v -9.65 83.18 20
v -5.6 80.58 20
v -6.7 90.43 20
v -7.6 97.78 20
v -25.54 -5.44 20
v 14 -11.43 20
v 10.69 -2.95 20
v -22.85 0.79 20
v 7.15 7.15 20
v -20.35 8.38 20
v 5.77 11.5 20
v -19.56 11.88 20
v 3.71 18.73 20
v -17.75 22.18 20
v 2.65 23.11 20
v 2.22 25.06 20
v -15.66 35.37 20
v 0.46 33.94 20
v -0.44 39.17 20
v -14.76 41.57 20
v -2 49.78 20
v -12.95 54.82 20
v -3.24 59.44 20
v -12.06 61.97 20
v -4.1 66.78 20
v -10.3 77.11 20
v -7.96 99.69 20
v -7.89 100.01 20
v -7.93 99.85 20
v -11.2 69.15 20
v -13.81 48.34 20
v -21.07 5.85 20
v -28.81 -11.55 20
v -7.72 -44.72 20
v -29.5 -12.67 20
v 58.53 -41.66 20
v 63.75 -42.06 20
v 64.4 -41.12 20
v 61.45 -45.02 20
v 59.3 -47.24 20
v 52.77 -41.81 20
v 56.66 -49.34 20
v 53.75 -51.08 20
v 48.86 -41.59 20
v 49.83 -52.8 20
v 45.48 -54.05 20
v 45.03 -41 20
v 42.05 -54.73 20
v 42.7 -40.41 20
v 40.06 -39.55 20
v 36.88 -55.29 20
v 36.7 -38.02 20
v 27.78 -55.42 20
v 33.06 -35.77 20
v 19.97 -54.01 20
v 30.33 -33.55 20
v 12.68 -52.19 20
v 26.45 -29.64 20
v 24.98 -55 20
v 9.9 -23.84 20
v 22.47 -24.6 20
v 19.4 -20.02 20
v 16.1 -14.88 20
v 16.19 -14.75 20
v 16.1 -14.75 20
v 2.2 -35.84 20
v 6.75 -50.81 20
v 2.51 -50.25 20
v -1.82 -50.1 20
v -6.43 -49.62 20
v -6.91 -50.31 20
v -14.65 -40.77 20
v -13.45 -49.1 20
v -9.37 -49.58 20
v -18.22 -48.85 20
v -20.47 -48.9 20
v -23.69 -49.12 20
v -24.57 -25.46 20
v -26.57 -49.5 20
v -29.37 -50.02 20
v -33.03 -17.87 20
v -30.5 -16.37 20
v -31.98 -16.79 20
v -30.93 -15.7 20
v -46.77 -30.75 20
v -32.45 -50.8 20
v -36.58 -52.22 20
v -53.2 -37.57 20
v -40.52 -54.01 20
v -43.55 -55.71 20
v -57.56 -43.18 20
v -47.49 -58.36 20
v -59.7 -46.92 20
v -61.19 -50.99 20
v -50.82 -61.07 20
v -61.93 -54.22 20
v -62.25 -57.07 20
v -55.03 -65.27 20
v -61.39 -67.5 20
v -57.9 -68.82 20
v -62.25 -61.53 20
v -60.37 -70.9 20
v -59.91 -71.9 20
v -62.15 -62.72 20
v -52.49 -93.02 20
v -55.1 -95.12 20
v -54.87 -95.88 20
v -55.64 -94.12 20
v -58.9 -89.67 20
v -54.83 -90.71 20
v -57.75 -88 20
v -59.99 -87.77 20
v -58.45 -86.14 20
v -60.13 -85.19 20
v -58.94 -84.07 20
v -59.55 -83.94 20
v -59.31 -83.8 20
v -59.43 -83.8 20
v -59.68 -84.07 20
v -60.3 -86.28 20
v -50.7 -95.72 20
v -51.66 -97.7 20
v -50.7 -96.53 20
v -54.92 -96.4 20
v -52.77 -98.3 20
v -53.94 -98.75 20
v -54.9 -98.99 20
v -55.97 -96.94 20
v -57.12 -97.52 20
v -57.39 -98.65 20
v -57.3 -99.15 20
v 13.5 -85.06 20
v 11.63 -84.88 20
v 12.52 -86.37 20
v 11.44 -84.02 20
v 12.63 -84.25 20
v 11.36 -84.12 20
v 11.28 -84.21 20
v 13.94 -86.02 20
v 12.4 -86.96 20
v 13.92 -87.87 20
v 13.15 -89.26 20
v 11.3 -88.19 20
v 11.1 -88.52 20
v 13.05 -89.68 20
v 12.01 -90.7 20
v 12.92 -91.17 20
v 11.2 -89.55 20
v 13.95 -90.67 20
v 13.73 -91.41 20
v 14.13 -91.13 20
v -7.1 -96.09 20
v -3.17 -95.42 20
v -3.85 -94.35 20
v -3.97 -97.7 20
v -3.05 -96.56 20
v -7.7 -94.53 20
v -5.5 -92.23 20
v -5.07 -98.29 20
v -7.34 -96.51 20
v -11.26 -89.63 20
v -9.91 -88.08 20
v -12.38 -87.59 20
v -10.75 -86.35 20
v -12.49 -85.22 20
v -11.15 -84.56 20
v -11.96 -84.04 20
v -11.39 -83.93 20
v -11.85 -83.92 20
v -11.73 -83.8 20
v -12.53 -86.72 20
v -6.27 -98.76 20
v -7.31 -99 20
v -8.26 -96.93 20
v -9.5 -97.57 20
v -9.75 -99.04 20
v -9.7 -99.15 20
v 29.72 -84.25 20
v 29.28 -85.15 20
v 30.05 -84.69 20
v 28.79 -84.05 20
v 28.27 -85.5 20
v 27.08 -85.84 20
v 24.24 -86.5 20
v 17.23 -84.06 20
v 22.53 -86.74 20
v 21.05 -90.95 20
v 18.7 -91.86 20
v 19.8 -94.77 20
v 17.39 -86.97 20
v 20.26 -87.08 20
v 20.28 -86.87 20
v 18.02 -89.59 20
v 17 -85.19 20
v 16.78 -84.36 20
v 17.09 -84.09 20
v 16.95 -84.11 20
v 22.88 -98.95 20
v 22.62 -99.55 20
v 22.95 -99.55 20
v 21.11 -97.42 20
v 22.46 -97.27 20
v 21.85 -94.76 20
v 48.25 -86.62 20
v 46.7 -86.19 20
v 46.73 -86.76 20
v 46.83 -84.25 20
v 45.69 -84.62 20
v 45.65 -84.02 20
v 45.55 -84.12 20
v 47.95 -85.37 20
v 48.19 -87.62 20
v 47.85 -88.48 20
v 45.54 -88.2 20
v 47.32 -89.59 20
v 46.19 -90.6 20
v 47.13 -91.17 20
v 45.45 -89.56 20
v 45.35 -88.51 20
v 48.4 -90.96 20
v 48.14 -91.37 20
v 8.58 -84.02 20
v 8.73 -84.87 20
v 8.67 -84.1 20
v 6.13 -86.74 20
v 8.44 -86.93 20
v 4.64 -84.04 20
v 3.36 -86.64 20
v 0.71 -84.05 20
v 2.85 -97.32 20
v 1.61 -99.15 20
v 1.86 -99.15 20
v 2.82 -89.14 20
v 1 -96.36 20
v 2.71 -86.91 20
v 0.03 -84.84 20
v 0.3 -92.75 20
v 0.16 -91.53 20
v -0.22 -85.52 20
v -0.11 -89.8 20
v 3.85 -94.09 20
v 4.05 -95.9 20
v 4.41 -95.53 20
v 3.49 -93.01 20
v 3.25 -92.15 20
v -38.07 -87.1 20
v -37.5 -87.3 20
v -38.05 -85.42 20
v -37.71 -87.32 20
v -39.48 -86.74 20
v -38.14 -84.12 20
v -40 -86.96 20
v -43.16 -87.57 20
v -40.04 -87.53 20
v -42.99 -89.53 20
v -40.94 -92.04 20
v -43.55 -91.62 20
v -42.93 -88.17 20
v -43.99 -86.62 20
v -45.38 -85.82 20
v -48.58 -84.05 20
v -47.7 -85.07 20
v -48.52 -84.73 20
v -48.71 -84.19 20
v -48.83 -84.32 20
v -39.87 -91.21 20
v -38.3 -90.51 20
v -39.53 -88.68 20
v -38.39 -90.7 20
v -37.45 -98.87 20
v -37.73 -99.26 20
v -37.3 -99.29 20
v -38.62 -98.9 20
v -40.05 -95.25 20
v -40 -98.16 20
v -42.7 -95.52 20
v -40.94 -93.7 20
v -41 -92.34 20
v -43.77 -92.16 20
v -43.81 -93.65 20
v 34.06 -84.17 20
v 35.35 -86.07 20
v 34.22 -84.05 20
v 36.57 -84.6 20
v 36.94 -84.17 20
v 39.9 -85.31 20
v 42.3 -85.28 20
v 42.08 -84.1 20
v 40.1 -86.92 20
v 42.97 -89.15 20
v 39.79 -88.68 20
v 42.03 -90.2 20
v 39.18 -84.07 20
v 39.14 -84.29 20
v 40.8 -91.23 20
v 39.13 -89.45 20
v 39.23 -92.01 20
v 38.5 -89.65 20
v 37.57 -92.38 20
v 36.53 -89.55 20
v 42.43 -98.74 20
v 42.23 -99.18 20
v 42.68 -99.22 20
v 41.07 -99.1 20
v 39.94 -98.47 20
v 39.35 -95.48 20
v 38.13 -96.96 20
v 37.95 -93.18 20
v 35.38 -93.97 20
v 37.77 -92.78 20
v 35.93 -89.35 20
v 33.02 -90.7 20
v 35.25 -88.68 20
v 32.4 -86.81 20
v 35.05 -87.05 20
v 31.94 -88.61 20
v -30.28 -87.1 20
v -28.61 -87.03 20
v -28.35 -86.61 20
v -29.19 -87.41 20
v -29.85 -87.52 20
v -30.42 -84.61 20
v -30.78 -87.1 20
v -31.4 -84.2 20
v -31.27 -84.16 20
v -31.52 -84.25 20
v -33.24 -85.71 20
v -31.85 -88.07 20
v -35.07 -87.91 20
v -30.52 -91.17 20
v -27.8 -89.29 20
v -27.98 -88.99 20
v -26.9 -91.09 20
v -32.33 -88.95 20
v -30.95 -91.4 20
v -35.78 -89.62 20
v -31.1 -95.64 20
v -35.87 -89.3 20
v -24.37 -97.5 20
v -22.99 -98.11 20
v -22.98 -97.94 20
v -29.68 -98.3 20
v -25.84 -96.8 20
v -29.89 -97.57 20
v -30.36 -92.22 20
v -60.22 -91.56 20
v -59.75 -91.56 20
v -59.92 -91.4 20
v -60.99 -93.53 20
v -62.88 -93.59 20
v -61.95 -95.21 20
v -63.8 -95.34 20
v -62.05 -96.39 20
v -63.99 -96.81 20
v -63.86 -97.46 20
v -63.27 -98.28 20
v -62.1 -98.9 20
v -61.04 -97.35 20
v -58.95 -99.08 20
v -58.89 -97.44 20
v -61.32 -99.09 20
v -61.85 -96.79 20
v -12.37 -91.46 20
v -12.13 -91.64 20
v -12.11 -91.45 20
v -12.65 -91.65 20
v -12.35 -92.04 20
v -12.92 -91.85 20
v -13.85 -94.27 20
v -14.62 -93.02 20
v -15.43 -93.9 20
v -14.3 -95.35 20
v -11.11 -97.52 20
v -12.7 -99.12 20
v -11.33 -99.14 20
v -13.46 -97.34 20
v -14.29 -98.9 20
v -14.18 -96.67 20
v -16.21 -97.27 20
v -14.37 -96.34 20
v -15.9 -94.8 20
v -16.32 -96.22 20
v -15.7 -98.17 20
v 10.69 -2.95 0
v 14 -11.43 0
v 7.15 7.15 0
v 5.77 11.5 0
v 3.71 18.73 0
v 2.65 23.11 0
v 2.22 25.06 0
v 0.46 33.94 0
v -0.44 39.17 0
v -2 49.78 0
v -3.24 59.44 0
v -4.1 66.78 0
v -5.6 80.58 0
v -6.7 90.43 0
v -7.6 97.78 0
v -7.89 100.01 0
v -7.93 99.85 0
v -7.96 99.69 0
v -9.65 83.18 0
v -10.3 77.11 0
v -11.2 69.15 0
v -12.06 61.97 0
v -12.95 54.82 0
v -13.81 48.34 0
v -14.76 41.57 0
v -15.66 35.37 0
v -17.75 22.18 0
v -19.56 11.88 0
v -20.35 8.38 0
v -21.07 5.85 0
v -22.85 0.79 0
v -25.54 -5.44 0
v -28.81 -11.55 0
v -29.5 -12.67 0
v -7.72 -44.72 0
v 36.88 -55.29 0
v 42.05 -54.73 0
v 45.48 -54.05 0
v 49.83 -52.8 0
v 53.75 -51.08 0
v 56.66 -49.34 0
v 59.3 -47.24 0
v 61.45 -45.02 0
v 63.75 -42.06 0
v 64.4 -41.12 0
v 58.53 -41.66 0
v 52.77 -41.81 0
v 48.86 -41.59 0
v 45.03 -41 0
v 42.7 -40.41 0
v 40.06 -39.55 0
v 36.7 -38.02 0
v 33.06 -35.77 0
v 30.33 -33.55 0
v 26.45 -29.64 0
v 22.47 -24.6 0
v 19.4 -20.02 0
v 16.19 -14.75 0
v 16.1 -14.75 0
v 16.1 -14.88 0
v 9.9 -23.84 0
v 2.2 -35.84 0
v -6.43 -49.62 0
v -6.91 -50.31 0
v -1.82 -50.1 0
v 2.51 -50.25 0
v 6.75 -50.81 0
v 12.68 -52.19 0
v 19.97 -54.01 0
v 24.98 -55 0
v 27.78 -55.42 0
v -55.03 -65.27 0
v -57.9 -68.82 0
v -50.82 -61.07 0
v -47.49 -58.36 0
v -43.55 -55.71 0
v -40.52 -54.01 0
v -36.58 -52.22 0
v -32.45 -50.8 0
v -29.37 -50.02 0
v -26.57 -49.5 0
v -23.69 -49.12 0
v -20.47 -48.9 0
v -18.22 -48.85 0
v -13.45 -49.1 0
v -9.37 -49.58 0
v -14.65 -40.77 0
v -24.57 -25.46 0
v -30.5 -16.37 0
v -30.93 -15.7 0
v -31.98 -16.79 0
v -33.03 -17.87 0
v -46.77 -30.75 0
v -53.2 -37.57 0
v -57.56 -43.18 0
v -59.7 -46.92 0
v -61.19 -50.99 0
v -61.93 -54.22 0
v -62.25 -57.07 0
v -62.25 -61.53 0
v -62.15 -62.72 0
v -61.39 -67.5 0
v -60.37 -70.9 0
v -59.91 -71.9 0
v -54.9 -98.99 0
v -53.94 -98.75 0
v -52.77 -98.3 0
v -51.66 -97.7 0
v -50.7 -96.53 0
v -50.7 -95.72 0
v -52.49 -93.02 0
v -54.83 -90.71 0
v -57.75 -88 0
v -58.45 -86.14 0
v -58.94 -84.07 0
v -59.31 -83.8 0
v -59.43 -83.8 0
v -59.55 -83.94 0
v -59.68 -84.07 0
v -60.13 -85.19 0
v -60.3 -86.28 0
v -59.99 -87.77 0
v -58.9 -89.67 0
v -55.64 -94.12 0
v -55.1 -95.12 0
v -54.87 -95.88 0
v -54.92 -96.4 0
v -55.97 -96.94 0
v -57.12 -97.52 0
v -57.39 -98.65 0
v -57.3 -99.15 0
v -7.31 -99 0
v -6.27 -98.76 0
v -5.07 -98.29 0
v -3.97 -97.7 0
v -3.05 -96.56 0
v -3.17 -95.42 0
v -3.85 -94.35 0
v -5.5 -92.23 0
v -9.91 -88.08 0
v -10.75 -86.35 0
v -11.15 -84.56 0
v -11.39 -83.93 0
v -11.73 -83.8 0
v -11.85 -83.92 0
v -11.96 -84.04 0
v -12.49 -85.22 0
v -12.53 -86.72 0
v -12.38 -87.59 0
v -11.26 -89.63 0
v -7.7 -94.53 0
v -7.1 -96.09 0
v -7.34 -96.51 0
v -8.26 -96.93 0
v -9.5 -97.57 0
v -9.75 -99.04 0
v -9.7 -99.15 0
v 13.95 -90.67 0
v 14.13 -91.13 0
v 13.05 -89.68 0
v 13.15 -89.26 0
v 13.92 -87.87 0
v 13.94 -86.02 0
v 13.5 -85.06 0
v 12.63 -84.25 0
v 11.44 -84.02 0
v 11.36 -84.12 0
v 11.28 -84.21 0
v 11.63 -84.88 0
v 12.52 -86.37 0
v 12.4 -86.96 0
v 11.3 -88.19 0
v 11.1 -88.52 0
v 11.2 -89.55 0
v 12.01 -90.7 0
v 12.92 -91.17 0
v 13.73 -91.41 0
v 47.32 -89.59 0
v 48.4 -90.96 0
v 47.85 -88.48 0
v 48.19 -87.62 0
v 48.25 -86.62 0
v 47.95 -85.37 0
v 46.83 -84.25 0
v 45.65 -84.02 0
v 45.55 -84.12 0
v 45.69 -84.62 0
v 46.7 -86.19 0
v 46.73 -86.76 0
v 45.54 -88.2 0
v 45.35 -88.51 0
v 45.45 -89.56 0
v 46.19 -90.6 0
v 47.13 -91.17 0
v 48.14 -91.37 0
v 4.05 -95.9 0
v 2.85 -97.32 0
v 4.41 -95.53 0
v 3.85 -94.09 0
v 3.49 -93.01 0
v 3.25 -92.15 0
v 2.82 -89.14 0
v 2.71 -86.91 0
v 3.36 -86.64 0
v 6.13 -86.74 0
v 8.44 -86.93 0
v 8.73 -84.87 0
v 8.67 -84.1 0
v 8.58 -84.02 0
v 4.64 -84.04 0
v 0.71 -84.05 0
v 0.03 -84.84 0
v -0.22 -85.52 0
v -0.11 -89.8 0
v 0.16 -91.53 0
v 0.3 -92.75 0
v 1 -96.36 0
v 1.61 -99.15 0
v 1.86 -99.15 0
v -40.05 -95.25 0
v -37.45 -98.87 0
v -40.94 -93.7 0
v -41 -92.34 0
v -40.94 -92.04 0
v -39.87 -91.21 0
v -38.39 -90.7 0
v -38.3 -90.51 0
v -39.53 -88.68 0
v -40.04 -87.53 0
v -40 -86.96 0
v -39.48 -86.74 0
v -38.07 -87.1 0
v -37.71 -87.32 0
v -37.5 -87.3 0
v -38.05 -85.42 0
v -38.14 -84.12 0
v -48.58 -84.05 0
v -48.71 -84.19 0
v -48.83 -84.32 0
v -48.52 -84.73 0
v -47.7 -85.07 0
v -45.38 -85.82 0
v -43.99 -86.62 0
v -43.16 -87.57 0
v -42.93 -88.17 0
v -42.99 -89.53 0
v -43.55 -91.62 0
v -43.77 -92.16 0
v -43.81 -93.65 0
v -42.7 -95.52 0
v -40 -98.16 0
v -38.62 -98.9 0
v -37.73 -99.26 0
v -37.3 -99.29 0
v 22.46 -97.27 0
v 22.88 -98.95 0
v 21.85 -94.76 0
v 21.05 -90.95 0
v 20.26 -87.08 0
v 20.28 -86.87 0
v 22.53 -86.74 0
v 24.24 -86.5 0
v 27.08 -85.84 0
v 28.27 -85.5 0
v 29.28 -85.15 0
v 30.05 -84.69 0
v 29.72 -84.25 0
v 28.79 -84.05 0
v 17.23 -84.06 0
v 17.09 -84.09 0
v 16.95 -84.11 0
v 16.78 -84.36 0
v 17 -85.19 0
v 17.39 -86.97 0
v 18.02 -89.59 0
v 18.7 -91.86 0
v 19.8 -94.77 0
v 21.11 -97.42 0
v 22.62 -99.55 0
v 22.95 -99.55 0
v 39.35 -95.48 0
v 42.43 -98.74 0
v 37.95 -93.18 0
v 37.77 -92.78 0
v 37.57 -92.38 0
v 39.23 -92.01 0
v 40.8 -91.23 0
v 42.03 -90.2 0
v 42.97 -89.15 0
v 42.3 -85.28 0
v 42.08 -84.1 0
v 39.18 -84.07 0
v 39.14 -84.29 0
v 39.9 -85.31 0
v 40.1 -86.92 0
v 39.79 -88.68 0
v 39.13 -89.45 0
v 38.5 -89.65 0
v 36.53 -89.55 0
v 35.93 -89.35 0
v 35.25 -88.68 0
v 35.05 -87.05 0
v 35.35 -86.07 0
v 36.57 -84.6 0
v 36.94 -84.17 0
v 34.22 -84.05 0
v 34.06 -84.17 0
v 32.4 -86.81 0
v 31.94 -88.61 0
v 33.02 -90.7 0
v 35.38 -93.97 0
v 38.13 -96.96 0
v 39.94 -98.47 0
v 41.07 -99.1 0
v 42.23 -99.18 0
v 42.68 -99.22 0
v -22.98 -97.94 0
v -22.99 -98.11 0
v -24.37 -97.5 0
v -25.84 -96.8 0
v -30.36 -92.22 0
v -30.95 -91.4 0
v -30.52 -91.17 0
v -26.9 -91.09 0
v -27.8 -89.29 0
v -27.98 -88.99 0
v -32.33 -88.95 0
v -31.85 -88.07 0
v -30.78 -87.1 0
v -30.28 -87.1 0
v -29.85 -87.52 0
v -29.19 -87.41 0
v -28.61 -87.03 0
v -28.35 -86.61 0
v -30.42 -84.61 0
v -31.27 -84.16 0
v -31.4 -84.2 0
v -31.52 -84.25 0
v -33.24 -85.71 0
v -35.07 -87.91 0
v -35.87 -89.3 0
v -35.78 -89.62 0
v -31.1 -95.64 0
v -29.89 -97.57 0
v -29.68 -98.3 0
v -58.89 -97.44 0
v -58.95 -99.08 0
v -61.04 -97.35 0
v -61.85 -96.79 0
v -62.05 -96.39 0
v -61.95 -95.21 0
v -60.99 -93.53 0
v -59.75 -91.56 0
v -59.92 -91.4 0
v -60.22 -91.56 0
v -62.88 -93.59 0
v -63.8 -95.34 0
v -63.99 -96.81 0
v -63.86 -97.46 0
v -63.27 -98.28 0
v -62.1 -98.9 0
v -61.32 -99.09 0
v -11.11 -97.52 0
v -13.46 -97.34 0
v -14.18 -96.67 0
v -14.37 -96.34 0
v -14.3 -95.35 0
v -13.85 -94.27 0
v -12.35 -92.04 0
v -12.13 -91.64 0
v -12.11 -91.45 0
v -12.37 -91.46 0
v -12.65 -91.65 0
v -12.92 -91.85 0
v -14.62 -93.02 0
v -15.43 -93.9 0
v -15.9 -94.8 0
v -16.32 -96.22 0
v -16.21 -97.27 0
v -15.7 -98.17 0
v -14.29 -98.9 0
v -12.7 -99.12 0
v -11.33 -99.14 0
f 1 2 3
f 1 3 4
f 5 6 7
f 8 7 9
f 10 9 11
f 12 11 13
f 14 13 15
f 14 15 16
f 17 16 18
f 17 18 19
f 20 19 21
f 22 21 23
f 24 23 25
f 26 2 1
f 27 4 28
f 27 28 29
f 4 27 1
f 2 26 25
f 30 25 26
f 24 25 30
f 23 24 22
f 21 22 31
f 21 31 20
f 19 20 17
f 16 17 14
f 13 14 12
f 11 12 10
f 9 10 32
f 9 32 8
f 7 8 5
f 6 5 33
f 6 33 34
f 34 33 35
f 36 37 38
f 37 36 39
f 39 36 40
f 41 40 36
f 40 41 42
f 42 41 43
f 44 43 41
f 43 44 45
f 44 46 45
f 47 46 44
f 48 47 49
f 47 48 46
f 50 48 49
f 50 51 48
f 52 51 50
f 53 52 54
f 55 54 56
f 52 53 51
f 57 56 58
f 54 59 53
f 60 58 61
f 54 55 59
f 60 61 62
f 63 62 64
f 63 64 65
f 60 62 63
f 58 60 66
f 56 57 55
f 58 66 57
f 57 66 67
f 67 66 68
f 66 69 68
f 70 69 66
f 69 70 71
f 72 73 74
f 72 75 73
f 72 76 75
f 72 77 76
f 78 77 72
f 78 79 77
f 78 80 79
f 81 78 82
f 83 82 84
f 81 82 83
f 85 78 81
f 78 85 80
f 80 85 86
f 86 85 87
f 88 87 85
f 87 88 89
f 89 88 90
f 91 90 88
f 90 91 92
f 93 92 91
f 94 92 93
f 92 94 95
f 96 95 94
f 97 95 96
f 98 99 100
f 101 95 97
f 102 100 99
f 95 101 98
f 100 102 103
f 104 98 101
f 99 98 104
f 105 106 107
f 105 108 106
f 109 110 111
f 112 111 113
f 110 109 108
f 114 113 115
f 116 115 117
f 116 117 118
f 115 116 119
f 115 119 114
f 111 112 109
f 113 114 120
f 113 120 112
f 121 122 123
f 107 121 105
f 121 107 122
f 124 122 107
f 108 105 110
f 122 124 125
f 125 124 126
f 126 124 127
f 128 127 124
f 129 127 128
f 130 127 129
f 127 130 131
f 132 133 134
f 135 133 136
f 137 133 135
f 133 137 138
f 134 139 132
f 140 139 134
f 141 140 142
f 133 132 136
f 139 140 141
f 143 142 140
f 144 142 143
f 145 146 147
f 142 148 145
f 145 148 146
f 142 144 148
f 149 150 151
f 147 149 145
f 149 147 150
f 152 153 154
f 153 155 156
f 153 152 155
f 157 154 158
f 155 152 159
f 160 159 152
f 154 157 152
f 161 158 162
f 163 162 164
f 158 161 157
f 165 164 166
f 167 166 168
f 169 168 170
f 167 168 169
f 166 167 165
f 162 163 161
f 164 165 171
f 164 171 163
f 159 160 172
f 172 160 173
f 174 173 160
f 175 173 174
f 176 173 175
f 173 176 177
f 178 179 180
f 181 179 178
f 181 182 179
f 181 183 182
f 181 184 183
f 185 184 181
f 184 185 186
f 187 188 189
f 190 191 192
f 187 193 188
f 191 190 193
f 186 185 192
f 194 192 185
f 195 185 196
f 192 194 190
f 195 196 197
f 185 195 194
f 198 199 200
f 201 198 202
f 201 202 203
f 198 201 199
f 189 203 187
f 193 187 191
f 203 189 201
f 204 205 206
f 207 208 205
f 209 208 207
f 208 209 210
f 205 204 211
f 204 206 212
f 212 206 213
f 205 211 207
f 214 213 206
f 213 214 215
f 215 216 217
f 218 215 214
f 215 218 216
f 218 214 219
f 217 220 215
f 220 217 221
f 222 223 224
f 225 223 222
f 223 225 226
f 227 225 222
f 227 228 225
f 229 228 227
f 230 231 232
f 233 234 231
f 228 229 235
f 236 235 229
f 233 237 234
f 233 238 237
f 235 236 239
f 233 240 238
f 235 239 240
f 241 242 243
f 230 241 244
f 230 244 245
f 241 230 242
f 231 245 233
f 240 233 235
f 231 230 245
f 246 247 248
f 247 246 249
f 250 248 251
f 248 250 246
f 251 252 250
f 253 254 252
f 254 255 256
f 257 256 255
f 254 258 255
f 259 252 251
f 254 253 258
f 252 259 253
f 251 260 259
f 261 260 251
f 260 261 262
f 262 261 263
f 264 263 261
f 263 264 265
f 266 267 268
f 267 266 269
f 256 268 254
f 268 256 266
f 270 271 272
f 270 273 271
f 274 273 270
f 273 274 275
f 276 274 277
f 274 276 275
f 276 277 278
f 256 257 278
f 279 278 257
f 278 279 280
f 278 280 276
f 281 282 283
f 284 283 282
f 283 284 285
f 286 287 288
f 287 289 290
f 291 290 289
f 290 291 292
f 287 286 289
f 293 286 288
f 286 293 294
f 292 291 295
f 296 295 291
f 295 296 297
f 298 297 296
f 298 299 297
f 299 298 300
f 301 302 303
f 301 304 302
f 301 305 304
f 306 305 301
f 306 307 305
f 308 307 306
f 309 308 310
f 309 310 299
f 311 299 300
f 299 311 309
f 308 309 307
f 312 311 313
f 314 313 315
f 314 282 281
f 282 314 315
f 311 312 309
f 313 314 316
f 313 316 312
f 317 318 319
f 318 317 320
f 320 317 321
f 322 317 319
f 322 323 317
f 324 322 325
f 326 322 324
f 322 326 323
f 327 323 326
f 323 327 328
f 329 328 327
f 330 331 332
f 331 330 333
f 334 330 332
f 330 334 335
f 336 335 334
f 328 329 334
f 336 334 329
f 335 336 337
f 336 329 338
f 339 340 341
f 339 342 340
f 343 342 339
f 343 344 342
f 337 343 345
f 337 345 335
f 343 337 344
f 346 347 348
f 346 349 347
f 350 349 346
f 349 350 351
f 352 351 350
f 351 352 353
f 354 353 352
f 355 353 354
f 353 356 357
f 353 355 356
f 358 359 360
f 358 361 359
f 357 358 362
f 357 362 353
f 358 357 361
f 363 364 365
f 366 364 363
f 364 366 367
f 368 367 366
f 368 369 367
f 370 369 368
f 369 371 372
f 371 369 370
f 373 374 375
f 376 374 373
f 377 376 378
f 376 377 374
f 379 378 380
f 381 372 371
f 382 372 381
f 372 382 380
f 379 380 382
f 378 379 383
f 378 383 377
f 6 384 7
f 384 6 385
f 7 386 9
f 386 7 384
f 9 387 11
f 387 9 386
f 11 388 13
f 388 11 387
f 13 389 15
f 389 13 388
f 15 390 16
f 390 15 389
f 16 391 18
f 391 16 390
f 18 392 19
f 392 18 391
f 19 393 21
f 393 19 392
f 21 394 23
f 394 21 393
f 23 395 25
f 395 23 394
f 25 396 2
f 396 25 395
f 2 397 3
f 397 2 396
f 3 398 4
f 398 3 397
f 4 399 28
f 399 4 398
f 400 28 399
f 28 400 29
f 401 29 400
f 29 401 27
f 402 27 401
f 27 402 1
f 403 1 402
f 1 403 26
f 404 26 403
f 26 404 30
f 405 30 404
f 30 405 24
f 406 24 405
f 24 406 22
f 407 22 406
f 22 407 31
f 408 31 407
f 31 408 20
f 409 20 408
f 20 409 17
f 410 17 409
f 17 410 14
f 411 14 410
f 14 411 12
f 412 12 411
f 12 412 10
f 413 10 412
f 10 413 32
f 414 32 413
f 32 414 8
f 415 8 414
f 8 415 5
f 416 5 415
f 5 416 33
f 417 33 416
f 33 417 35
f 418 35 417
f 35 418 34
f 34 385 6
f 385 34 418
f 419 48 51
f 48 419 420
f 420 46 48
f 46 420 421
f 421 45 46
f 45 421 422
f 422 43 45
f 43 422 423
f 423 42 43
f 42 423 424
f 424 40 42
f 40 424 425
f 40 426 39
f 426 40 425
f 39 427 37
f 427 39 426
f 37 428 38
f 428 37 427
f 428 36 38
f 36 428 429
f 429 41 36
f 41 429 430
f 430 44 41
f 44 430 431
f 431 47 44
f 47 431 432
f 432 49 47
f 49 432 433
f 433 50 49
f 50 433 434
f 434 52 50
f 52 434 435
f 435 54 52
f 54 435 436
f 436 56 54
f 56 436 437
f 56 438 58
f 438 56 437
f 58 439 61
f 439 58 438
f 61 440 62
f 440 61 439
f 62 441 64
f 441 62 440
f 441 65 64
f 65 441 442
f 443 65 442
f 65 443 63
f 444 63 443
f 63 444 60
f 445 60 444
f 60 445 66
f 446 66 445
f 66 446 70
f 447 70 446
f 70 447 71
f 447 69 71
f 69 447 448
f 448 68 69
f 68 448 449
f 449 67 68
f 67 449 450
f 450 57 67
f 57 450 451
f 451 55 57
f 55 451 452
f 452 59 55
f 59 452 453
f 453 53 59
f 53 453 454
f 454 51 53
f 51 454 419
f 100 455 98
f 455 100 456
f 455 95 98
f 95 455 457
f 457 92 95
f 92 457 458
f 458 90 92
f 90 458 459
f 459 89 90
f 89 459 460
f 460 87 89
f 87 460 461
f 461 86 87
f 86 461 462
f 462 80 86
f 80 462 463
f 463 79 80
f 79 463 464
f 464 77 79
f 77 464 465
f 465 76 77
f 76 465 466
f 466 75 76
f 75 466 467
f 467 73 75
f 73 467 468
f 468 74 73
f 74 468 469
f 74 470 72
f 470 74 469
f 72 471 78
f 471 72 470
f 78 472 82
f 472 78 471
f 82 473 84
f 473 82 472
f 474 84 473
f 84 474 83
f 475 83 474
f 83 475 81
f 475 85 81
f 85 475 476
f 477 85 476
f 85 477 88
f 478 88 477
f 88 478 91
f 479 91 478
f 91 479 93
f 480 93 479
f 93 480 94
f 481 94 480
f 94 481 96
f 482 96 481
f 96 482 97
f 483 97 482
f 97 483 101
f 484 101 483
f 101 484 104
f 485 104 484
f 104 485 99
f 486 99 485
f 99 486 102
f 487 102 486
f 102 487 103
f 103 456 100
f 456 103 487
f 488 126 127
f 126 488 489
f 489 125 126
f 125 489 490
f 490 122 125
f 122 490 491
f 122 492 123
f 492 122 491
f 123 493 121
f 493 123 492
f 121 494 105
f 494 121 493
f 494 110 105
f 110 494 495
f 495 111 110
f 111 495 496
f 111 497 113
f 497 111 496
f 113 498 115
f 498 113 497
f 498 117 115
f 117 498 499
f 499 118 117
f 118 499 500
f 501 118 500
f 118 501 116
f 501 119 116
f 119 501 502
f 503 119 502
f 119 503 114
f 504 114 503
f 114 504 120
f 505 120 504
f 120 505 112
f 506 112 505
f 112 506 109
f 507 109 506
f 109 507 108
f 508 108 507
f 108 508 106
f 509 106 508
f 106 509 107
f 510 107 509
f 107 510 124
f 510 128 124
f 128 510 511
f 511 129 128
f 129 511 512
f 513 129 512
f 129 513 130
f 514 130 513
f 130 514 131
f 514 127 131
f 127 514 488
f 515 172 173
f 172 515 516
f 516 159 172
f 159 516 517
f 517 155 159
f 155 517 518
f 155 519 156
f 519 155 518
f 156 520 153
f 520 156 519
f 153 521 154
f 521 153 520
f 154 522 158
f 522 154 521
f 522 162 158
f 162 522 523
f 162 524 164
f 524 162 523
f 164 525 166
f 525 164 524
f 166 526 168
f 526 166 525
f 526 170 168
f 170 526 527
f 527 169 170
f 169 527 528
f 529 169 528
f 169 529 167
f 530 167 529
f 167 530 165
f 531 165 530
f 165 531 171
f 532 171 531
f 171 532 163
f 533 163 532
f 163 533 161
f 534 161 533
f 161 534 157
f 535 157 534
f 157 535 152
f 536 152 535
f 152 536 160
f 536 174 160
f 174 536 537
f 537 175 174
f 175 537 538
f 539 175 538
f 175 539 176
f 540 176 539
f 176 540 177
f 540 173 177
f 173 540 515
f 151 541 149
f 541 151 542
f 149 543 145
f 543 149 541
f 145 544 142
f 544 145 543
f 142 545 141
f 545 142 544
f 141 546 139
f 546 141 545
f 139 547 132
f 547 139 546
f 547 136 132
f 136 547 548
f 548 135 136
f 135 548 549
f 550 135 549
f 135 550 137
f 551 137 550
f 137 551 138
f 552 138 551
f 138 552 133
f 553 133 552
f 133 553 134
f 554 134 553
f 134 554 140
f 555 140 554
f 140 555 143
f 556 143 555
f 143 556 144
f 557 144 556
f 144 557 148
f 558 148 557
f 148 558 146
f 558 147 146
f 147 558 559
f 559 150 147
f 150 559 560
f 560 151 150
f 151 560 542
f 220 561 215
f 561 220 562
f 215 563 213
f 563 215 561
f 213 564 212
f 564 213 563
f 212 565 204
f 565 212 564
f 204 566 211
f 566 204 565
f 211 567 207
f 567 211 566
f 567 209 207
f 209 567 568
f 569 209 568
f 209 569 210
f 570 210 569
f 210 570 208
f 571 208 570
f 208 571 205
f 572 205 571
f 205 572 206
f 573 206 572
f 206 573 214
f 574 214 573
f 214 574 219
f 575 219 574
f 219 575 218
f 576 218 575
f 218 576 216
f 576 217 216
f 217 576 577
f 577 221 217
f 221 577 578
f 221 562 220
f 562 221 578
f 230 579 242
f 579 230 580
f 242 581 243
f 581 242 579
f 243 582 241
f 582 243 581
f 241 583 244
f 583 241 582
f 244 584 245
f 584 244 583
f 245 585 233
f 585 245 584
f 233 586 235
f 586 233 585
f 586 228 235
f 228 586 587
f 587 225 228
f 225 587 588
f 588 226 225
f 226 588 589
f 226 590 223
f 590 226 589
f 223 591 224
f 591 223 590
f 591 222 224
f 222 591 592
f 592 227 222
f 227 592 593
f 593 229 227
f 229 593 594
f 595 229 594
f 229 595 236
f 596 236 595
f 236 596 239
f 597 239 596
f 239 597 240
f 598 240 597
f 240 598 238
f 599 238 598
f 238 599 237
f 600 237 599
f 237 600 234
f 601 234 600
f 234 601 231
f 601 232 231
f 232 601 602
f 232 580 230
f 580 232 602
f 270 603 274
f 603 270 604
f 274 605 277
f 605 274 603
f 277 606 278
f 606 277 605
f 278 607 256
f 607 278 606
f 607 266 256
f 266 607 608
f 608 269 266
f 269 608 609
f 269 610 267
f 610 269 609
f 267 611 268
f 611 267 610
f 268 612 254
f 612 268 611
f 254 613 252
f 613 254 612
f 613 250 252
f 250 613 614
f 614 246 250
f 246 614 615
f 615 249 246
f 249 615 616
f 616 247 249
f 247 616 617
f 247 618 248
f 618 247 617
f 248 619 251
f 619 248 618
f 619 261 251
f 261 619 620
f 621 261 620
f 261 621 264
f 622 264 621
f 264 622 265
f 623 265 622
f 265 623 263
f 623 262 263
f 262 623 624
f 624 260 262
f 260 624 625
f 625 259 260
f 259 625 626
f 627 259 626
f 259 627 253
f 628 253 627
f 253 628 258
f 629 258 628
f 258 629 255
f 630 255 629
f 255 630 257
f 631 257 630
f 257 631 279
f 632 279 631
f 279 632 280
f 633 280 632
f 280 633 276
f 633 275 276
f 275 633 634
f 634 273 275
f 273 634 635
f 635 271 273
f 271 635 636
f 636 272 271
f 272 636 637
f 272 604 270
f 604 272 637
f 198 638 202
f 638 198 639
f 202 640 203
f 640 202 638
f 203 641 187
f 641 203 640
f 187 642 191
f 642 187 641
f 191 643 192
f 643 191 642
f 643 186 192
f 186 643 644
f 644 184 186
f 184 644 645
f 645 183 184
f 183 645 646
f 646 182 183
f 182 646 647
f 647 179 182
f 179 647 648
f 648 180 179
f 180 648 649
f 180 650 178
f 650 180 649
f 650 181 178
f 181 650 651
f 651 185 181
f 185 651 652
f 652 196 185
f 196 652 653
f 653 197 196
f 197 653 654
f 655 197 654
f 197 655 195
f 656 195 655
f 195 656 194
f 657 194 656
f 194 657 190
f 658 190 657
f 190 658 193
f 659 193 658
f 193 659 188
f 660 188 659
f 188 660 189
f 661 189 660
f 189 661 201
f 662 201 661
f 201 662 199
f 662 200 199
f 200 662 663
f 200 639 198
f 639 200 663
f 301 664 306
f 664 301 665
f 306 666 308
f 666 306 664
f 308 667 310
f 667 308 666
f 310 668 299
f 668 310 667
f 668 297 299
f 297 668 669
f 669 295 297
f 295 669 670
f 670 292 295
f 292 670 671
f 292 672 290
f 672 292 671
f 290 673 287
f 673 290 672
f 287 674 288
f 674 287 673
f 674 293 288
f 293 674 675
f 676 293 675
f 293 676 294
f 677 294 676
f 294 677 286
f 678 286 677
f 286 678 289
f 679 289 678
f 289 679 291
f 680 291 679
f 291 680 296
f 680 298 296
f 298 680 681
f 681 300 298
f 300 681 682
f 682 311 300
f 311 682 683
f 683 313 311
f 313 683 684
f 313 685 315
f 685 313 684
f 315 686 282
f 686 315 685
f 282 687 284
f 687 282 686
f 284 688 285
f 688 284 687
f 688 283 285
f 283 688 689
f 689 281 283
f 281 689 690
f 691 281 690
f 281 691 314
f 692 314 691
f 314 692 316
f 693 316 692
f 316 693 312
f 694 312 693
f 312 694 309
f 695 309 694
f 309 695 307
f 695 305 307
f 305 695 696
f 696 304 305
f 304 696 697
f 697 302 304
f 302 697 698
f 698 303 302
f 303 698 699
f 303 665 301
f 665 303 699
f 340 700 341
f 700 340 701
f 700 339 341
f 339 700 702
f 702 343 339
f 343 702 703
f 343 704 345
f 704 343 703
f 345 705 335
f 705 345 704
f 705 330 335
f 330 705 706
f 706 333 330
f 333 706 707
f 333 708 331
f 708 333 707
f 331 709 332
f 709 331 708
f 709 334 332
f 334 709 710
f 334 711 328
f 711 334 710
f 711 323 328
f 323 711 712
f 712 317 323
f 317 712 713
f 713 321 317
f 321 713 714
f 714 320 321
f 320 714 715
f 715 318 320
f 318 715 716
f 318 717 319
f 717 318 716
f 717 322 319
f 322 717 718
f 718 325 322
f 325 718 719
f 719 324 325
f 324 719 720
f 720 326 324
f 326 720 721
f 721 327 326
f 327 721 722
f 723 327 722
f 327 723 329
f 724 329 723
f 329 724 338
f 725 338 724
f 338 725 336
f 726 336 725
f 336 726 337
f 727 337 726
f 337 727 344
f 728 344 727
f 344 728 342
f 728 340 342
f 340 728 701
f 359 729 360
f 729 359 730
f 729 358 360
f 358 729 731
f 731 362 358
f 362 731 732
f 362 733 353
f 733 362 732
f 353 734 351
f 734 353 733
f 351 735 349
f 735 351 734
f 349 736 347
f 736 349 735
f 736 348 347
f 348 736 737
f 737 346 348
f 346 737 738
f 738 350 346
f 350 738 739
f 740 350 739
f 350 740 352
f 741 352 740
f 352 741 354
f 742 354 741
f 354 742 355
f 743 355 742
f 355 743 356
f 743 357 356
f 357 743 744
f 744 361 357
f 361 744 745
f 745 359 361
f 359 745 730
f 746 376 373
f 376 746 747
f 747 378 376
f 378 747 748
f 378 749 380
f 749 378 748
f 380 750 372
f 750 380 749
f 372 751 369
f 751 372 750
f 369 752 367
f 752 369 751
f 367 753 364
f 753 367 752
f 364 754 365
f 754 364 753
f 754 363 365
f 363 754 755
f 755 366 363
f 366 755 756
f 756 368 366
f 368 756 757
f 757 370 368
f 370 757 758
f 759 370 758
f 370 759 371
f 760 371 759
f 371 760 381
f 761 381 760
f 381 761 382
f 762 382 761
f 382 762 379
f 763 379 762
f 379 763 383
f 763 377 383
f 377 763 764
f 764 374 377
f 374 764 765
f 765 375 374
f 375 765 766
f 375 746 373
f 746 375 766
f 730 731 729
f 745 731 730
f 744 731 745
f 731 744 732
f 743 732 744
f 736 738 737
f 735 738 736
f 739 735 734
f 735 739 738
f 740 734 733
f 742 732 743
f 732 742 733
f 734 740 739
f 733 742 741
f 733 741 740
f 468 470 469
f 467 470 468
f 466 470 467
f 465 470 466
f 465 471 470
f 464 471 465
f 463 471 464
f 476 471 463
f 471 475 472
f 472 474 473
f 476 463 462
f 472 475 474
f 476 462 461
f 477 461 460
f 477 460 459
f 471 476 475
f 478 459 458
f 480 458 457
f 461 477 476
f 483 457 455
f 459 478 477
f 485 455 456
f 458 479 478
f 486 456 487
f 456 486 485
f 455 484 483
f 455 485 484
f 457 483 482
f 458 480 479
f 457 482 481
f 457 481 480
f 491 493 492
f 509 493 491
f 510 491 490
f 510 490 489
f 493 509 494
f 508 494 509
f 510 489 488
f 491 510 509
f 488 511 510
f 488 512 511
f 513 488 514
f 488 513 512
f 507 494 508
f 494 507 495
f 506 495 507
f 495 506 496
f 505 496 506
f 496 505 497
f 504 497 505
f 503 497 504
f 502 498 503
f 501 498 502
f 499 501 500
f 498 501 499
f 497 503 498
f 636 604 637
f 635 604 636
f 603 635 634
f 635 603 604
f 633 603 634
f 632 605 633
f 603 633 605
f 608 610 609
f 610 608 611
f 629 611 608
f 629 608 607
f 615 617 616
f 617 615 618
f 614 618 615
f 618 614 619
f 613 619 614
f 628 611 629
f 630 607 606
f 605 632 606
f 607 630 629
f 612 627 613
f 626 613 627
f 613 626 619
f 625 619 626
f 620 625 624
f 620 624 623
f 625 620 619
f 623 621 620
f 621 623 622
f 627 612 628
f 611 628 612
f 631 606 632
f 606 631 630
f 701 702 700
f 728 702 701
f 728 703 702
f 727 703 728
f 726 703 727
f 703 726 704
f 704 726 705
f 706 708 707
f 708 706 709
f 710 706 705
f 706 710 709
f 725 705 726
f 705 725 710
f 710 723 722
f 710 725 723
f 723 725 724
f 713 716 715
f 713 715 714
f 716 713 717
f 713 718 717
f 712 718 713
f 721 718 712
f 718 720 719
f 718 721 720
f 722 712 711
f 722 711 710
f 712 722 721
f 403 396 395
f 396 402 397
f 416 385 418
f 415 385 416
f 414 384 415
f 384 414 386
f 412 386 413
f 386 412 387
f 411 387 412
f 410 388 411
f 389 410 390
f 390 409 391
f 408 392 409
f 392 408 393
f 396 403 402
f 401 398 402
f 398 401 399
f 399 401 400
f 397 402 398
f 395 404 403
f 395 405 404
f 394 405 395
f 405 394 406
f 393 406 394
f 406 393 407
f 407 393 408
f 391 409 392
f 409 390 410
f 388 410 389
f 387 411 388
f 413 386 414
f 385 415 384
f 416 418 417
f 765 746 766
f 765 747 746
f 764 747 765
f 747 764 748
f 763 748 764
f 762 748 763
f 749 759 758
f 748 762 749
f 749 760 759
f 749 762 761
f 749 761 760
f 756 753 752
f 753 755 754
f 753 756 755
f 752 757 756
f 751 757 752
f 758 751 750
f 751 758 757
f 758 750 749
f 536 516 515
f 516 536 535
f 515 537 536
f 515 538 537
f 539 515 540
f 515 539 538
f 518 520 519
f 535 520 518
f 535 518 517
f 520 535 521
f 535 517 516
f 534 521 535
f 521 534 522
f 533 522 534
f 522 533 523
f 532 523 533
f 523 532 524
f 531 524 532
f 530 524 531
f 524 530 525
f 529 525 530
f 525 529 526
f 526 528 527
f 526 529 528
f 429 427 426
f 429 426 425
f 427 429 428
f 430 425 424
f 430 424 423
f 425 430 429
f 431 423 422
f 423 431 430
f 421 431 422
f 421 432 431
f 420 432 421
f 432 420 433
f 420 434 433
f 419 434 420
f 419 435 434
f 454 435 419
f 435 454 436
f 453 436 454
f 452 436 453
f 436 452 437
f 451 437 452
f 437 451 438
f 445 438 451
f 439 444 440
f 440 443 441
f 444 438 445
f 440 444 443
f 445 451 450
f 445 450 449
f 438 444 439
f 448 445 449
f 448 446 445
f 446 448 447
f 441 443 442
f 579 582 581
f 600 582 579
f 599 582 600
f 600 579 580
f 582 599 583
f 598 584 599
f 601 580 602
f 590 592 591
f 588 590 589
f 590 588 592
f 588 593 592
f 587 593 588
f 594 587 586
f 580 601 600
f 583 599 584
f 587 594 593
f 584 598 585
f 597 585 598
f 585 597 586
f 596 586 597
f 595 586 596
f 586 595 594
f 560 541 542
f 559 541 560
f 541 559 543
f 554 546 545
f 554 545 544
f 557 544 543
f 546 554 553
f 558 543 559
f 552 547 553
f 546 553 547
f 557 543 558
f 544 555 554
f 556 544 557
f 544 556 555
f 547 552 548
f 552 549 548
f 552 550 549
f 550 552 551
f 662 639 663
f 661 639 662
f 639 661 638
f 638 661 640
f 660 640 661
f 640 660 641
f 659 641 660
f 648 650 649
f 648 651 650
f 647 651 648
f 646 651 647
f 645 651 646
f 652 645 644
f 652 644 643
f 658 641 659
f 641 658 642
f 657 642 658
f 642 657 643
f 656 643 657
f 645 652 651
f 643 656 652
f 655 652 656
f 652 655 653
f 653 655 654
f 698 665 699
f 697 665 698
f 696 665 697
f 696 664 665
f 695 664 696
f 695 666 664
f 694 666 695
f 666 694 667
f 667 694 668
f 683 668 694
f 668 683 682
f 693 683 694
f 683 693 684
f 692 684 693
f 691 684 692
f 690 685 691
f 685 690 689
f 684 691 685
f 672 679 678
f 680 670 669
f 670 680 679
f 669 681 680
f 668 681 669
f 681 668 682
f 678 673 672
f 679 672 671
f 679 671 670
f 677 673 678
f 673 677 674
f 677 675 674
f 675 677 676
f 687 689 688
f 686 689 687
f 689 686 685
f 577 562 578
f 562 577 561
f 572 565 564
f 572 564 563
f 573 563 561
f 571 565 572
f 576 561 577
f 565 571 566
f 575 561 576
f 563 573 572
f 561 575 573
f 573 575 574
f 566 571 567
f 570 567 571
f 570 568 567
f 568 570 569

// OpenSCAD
module 2ffbde56e816d732f5255ae07a8c1cd5_1()
{
 /* Generated by trace2scad version 20150415
    http://aggregate.org/MAKE/TRACE2SCAD/
    Optimized model has 387/4796 original points
 */
 color([0.48, 0.48, 0.48])
 assign(minx=0) /* polygon minx=39 */
 assign(miny=0) /* polygon miny=45 */
 assign(maxx=12880) /* polygon maxx=12880 */
 assign(maxy=20000) /* polygon maxy=20001 */
 assign(dx=maxx-minx)
 assign(dy=maxy-miny)
 assign(maxd=((dx>dy)?dx:dy))
 scale([1/maxd, 1/maxd, 1])
 translate([-minx-dx/2, -miny-dy/2, 0])
 linear_extrude(height=1, convexity=387)
 union() {
  union() {
   polygon([[5647,19985],[5644,19969],[5475,18318],[5410,17711],[5320,16915],[5234,16197],[5145,15482],[5059,14834],[4964,14157],[4874,13537],[4665,12218],[4484,11188],[4405,10838],[4333,10585],[4155,10079],[3886,9456],[3559,8845],[3490,8733],[5668,5528],[7840,8857],[7509,9705],[7155,10715],[7017,11150],[6811,11873],[6705,12311],[6662,12506],[6486,13394],[6396,13917],[6240,14978],[6116,15944],[6030,16678],[5880,18058],[5770,19043],[5680,19778],[5651,20001]], convexity=6);
   polygon([[8050,8518],[8050,8512],[7430,7616],[6660,6416],[5797,5038],[5749,4969],[6258,4990],[6691,4975],[7115,4919],[7708,4781],[8437,4599],[8938,4500],[9218,4458],[10128,4471],[10645,4527],[10988,4595],[11423,4720],[11815,4892],[12106,5066],[12370,5276],[12585,5498],[12815,5794],[12880,5888],[12293,5834],[11717,5819],[11326,5841],[10943,5900],[10710,5959],[10446,6045],[10110,6198],[9746,6423],[9473,6645],[9085,7036],[8687,7540],[8380,7998],[8059,8525],[8050,8525]], convexity=9);
   polygon([[3242,8321],[3137,8213],[1763,6925],[1120,6243],[684,5682],[470,5308],[321,4901],[247,4578],[215,4293],[215,3847],[225,3728],[301,3250],[403,2910],[449,2810],[650,3118],[937,3473],[1358,3893],[1691,4164],[2085,4429],[2388,4599],[2782,4778],[3195,4920],[3503,4998],[3783,5050],[4071,5088],[4393,5110],[4618,5115],[5095,5090],[5503,5042],[4975,5923],[3983,7454],[3390,8363],[3347,8430]], convexity=7);
   polygon([[485,1606],[472,1593],[427,1481],[410,1372],[441,1223],[550,1033],[876,588],[930,488],[953,412],[948,360],[843,306],[728,248],[701,135],[710,85],[950,101],[1046,125],[1163,170],[1274,230],[1370,347],[1370,428],[1191,698],[957,929],[665,1200],[595,1386],[546,1593],[509,1620],[497,1620]], convexity=8);
   polygon([[5255,1608],[5244,1596],[5191,1478],[5187,1328],[5202,1241],[5314,1037],[5670,547],[5730,391],[5706,349],[5614,307],[5490,243],[5465,96],[5470,85],[5709,100],[5813,124],[5933,171],[6043,230],[6135,344],[6123,458],[6055,565],[5890,777],[5449,1192],[5365,1365],[5325,1544],[5301,1607],[5267,1620]], convexity=8);
   polygon([[6904,1596],[6511,1595],[6443,1516],[6418,1448],[6429,1020],[6456,847],[6470,725],[6540,364],[6601,85],[6626,85],[6725,268],[6845,410],[6881,447],[6825,591],[6789,699],[6765,785],[6722,1086],[6711,1309],[6776,1336],[7053,1326],[7284,1307],[7313,1513],[7307,1590],[7298,1598]], convexity=10);
   polygon([[7576,1588],[7568,1579],[7603,1512],[7692,1363],[7680,1304],[7570,1181],[7550,1148],[7560,1045],[7641,930],[7732,883],[7813,859],[7853,887],[7835,933],[7745,1032],[7755,1074],[7832,1213],[7834,1398],[7790,1494],[7703,1575],[7584,1598]], convexity=10);
   polygon([[11000,1593],[10995,1588],[11009,1538],[11110,1381],[11113,1324],[10994,1180],[10975,1149],[10985,1044],[11059,940],[11153,883],[11254,863],[11280,904],[11172,1041],[11225,1152],[11259,1238],[11265,1338],[11235,1463],[11123,1575],[11005,1598]], convexity=10);
   polygon([[1569,1581],[1557,1568],[1588,1527],[1670,1493],[1902,1418],[2041,1338],[2124,1243],[2147,1183],[2141,1047],[2085,838],[2063,784],[2059,635],[2170,448],[2440,184],[2578,110],[2667,74],[2710,71],[2695,113],[2435,475],[2346,630],[2340,766],[2346,796],[2453,879],[2601,930],[2610,949],[2487,1132],[2436,1247],[2440,1304],[2492,1326],[2633,1290],[2669,1268],[2690,1270],[2635,1458],[2626,1588],[1582,1595]], convexity=13);
   polygon([[8149,1591],[8135,1589],[8118,1564],[8140,1481],[8179,1303],[8242,1041],[8310,814],[8420,523],[8551,258],[8702,45],[8735,45],[8728,105],[8686,273],[8625,524],[8545,905],[8466,1292],[8468,1313],[8693,1326],[8864,1350],[9148,1416],[9267,1450],[9368,1485],[9445,1531],[9412,1575],[9319,1595],[8163,1594]], convexity=9);
   polygon([[9854,1589],[9846,1583],[9680,1319],[9634,1139],[9742,930],[9978,603],[10253,304],[10434,153],[10547,90],[10663,82],[10708,78],[10683,126],[10375,452],[10235,682],[10217,722],[10197,762],[10363,799],[10520,877],[10643,980],[10737,1085],[10670,1472],[10648,1590],[10358,1593],[10354,1571],[10430,1469],[10450,1308],[10419,1132],[10353,1055],[10290,1035],[10093,1045],[10033,1065],[9965,1132],[9945,1295],[9975,1393],[10097,1540],[10134,1583],[9862,1595]], convexity=13);
   polygon([[3300,1580],[3288,1575],[3116,1429],[2933,1209],[2853,1070],[2862,1038],[3330,436],[3451,243],[3472,170],[4141,189],[4142,206],[4003,250],[3856,320],[3404,778],[3345,860],[3388,883],[3750,891],[3660,1071],[3642,1101],[3207,1105],[3255,1193],[3362,1290],[3412,1290],[3455,1248],[3521,1259],[3579,1297],[3605,1339],[3398,1539],[3313,1584]], convexity=12);
   polygon([[433,852],[418,844],[152,641],[60,466],[41,319],[54,254],[113,172],[230,110],[308,91],[545,92],[551,256],[336,265],[255,321],[235,361],[245,479],[341,647],[465,844],[448,860]], convexity=8);
   polygon([[5175,835],[5148,815],[4978,698],[4897,610],[4850,520],[4808,378],[4819,273],[4870,183],[5011,110],[5170,88],[5307,86],[5329,248],[5094,266],[5022,333],[5003,366],[5010,465],[5055,573],[5205,796],[5227,836],[5229,855],[5203,854]], convexity=8);
  }
 }
}

module 2ffbde56e816d732f5255ae07a8c1cd5()
{
 /* all layers combined, scaled to within a 1mm cube */
 scale([1, 1, 1/1])
 difference() {
  union() {
   scale([1,1,2]) translate([0,0,-0.5]) 2ffbde56e816d732f5255ae07a8c1cd5_1();
  }
  translate([0,0,-2]) cube([2,2,4],center=true);
 }
}

scale([200, 200, 20]) {
	2ffbde56e816d732f5255ae07a8c1cd5();
}
